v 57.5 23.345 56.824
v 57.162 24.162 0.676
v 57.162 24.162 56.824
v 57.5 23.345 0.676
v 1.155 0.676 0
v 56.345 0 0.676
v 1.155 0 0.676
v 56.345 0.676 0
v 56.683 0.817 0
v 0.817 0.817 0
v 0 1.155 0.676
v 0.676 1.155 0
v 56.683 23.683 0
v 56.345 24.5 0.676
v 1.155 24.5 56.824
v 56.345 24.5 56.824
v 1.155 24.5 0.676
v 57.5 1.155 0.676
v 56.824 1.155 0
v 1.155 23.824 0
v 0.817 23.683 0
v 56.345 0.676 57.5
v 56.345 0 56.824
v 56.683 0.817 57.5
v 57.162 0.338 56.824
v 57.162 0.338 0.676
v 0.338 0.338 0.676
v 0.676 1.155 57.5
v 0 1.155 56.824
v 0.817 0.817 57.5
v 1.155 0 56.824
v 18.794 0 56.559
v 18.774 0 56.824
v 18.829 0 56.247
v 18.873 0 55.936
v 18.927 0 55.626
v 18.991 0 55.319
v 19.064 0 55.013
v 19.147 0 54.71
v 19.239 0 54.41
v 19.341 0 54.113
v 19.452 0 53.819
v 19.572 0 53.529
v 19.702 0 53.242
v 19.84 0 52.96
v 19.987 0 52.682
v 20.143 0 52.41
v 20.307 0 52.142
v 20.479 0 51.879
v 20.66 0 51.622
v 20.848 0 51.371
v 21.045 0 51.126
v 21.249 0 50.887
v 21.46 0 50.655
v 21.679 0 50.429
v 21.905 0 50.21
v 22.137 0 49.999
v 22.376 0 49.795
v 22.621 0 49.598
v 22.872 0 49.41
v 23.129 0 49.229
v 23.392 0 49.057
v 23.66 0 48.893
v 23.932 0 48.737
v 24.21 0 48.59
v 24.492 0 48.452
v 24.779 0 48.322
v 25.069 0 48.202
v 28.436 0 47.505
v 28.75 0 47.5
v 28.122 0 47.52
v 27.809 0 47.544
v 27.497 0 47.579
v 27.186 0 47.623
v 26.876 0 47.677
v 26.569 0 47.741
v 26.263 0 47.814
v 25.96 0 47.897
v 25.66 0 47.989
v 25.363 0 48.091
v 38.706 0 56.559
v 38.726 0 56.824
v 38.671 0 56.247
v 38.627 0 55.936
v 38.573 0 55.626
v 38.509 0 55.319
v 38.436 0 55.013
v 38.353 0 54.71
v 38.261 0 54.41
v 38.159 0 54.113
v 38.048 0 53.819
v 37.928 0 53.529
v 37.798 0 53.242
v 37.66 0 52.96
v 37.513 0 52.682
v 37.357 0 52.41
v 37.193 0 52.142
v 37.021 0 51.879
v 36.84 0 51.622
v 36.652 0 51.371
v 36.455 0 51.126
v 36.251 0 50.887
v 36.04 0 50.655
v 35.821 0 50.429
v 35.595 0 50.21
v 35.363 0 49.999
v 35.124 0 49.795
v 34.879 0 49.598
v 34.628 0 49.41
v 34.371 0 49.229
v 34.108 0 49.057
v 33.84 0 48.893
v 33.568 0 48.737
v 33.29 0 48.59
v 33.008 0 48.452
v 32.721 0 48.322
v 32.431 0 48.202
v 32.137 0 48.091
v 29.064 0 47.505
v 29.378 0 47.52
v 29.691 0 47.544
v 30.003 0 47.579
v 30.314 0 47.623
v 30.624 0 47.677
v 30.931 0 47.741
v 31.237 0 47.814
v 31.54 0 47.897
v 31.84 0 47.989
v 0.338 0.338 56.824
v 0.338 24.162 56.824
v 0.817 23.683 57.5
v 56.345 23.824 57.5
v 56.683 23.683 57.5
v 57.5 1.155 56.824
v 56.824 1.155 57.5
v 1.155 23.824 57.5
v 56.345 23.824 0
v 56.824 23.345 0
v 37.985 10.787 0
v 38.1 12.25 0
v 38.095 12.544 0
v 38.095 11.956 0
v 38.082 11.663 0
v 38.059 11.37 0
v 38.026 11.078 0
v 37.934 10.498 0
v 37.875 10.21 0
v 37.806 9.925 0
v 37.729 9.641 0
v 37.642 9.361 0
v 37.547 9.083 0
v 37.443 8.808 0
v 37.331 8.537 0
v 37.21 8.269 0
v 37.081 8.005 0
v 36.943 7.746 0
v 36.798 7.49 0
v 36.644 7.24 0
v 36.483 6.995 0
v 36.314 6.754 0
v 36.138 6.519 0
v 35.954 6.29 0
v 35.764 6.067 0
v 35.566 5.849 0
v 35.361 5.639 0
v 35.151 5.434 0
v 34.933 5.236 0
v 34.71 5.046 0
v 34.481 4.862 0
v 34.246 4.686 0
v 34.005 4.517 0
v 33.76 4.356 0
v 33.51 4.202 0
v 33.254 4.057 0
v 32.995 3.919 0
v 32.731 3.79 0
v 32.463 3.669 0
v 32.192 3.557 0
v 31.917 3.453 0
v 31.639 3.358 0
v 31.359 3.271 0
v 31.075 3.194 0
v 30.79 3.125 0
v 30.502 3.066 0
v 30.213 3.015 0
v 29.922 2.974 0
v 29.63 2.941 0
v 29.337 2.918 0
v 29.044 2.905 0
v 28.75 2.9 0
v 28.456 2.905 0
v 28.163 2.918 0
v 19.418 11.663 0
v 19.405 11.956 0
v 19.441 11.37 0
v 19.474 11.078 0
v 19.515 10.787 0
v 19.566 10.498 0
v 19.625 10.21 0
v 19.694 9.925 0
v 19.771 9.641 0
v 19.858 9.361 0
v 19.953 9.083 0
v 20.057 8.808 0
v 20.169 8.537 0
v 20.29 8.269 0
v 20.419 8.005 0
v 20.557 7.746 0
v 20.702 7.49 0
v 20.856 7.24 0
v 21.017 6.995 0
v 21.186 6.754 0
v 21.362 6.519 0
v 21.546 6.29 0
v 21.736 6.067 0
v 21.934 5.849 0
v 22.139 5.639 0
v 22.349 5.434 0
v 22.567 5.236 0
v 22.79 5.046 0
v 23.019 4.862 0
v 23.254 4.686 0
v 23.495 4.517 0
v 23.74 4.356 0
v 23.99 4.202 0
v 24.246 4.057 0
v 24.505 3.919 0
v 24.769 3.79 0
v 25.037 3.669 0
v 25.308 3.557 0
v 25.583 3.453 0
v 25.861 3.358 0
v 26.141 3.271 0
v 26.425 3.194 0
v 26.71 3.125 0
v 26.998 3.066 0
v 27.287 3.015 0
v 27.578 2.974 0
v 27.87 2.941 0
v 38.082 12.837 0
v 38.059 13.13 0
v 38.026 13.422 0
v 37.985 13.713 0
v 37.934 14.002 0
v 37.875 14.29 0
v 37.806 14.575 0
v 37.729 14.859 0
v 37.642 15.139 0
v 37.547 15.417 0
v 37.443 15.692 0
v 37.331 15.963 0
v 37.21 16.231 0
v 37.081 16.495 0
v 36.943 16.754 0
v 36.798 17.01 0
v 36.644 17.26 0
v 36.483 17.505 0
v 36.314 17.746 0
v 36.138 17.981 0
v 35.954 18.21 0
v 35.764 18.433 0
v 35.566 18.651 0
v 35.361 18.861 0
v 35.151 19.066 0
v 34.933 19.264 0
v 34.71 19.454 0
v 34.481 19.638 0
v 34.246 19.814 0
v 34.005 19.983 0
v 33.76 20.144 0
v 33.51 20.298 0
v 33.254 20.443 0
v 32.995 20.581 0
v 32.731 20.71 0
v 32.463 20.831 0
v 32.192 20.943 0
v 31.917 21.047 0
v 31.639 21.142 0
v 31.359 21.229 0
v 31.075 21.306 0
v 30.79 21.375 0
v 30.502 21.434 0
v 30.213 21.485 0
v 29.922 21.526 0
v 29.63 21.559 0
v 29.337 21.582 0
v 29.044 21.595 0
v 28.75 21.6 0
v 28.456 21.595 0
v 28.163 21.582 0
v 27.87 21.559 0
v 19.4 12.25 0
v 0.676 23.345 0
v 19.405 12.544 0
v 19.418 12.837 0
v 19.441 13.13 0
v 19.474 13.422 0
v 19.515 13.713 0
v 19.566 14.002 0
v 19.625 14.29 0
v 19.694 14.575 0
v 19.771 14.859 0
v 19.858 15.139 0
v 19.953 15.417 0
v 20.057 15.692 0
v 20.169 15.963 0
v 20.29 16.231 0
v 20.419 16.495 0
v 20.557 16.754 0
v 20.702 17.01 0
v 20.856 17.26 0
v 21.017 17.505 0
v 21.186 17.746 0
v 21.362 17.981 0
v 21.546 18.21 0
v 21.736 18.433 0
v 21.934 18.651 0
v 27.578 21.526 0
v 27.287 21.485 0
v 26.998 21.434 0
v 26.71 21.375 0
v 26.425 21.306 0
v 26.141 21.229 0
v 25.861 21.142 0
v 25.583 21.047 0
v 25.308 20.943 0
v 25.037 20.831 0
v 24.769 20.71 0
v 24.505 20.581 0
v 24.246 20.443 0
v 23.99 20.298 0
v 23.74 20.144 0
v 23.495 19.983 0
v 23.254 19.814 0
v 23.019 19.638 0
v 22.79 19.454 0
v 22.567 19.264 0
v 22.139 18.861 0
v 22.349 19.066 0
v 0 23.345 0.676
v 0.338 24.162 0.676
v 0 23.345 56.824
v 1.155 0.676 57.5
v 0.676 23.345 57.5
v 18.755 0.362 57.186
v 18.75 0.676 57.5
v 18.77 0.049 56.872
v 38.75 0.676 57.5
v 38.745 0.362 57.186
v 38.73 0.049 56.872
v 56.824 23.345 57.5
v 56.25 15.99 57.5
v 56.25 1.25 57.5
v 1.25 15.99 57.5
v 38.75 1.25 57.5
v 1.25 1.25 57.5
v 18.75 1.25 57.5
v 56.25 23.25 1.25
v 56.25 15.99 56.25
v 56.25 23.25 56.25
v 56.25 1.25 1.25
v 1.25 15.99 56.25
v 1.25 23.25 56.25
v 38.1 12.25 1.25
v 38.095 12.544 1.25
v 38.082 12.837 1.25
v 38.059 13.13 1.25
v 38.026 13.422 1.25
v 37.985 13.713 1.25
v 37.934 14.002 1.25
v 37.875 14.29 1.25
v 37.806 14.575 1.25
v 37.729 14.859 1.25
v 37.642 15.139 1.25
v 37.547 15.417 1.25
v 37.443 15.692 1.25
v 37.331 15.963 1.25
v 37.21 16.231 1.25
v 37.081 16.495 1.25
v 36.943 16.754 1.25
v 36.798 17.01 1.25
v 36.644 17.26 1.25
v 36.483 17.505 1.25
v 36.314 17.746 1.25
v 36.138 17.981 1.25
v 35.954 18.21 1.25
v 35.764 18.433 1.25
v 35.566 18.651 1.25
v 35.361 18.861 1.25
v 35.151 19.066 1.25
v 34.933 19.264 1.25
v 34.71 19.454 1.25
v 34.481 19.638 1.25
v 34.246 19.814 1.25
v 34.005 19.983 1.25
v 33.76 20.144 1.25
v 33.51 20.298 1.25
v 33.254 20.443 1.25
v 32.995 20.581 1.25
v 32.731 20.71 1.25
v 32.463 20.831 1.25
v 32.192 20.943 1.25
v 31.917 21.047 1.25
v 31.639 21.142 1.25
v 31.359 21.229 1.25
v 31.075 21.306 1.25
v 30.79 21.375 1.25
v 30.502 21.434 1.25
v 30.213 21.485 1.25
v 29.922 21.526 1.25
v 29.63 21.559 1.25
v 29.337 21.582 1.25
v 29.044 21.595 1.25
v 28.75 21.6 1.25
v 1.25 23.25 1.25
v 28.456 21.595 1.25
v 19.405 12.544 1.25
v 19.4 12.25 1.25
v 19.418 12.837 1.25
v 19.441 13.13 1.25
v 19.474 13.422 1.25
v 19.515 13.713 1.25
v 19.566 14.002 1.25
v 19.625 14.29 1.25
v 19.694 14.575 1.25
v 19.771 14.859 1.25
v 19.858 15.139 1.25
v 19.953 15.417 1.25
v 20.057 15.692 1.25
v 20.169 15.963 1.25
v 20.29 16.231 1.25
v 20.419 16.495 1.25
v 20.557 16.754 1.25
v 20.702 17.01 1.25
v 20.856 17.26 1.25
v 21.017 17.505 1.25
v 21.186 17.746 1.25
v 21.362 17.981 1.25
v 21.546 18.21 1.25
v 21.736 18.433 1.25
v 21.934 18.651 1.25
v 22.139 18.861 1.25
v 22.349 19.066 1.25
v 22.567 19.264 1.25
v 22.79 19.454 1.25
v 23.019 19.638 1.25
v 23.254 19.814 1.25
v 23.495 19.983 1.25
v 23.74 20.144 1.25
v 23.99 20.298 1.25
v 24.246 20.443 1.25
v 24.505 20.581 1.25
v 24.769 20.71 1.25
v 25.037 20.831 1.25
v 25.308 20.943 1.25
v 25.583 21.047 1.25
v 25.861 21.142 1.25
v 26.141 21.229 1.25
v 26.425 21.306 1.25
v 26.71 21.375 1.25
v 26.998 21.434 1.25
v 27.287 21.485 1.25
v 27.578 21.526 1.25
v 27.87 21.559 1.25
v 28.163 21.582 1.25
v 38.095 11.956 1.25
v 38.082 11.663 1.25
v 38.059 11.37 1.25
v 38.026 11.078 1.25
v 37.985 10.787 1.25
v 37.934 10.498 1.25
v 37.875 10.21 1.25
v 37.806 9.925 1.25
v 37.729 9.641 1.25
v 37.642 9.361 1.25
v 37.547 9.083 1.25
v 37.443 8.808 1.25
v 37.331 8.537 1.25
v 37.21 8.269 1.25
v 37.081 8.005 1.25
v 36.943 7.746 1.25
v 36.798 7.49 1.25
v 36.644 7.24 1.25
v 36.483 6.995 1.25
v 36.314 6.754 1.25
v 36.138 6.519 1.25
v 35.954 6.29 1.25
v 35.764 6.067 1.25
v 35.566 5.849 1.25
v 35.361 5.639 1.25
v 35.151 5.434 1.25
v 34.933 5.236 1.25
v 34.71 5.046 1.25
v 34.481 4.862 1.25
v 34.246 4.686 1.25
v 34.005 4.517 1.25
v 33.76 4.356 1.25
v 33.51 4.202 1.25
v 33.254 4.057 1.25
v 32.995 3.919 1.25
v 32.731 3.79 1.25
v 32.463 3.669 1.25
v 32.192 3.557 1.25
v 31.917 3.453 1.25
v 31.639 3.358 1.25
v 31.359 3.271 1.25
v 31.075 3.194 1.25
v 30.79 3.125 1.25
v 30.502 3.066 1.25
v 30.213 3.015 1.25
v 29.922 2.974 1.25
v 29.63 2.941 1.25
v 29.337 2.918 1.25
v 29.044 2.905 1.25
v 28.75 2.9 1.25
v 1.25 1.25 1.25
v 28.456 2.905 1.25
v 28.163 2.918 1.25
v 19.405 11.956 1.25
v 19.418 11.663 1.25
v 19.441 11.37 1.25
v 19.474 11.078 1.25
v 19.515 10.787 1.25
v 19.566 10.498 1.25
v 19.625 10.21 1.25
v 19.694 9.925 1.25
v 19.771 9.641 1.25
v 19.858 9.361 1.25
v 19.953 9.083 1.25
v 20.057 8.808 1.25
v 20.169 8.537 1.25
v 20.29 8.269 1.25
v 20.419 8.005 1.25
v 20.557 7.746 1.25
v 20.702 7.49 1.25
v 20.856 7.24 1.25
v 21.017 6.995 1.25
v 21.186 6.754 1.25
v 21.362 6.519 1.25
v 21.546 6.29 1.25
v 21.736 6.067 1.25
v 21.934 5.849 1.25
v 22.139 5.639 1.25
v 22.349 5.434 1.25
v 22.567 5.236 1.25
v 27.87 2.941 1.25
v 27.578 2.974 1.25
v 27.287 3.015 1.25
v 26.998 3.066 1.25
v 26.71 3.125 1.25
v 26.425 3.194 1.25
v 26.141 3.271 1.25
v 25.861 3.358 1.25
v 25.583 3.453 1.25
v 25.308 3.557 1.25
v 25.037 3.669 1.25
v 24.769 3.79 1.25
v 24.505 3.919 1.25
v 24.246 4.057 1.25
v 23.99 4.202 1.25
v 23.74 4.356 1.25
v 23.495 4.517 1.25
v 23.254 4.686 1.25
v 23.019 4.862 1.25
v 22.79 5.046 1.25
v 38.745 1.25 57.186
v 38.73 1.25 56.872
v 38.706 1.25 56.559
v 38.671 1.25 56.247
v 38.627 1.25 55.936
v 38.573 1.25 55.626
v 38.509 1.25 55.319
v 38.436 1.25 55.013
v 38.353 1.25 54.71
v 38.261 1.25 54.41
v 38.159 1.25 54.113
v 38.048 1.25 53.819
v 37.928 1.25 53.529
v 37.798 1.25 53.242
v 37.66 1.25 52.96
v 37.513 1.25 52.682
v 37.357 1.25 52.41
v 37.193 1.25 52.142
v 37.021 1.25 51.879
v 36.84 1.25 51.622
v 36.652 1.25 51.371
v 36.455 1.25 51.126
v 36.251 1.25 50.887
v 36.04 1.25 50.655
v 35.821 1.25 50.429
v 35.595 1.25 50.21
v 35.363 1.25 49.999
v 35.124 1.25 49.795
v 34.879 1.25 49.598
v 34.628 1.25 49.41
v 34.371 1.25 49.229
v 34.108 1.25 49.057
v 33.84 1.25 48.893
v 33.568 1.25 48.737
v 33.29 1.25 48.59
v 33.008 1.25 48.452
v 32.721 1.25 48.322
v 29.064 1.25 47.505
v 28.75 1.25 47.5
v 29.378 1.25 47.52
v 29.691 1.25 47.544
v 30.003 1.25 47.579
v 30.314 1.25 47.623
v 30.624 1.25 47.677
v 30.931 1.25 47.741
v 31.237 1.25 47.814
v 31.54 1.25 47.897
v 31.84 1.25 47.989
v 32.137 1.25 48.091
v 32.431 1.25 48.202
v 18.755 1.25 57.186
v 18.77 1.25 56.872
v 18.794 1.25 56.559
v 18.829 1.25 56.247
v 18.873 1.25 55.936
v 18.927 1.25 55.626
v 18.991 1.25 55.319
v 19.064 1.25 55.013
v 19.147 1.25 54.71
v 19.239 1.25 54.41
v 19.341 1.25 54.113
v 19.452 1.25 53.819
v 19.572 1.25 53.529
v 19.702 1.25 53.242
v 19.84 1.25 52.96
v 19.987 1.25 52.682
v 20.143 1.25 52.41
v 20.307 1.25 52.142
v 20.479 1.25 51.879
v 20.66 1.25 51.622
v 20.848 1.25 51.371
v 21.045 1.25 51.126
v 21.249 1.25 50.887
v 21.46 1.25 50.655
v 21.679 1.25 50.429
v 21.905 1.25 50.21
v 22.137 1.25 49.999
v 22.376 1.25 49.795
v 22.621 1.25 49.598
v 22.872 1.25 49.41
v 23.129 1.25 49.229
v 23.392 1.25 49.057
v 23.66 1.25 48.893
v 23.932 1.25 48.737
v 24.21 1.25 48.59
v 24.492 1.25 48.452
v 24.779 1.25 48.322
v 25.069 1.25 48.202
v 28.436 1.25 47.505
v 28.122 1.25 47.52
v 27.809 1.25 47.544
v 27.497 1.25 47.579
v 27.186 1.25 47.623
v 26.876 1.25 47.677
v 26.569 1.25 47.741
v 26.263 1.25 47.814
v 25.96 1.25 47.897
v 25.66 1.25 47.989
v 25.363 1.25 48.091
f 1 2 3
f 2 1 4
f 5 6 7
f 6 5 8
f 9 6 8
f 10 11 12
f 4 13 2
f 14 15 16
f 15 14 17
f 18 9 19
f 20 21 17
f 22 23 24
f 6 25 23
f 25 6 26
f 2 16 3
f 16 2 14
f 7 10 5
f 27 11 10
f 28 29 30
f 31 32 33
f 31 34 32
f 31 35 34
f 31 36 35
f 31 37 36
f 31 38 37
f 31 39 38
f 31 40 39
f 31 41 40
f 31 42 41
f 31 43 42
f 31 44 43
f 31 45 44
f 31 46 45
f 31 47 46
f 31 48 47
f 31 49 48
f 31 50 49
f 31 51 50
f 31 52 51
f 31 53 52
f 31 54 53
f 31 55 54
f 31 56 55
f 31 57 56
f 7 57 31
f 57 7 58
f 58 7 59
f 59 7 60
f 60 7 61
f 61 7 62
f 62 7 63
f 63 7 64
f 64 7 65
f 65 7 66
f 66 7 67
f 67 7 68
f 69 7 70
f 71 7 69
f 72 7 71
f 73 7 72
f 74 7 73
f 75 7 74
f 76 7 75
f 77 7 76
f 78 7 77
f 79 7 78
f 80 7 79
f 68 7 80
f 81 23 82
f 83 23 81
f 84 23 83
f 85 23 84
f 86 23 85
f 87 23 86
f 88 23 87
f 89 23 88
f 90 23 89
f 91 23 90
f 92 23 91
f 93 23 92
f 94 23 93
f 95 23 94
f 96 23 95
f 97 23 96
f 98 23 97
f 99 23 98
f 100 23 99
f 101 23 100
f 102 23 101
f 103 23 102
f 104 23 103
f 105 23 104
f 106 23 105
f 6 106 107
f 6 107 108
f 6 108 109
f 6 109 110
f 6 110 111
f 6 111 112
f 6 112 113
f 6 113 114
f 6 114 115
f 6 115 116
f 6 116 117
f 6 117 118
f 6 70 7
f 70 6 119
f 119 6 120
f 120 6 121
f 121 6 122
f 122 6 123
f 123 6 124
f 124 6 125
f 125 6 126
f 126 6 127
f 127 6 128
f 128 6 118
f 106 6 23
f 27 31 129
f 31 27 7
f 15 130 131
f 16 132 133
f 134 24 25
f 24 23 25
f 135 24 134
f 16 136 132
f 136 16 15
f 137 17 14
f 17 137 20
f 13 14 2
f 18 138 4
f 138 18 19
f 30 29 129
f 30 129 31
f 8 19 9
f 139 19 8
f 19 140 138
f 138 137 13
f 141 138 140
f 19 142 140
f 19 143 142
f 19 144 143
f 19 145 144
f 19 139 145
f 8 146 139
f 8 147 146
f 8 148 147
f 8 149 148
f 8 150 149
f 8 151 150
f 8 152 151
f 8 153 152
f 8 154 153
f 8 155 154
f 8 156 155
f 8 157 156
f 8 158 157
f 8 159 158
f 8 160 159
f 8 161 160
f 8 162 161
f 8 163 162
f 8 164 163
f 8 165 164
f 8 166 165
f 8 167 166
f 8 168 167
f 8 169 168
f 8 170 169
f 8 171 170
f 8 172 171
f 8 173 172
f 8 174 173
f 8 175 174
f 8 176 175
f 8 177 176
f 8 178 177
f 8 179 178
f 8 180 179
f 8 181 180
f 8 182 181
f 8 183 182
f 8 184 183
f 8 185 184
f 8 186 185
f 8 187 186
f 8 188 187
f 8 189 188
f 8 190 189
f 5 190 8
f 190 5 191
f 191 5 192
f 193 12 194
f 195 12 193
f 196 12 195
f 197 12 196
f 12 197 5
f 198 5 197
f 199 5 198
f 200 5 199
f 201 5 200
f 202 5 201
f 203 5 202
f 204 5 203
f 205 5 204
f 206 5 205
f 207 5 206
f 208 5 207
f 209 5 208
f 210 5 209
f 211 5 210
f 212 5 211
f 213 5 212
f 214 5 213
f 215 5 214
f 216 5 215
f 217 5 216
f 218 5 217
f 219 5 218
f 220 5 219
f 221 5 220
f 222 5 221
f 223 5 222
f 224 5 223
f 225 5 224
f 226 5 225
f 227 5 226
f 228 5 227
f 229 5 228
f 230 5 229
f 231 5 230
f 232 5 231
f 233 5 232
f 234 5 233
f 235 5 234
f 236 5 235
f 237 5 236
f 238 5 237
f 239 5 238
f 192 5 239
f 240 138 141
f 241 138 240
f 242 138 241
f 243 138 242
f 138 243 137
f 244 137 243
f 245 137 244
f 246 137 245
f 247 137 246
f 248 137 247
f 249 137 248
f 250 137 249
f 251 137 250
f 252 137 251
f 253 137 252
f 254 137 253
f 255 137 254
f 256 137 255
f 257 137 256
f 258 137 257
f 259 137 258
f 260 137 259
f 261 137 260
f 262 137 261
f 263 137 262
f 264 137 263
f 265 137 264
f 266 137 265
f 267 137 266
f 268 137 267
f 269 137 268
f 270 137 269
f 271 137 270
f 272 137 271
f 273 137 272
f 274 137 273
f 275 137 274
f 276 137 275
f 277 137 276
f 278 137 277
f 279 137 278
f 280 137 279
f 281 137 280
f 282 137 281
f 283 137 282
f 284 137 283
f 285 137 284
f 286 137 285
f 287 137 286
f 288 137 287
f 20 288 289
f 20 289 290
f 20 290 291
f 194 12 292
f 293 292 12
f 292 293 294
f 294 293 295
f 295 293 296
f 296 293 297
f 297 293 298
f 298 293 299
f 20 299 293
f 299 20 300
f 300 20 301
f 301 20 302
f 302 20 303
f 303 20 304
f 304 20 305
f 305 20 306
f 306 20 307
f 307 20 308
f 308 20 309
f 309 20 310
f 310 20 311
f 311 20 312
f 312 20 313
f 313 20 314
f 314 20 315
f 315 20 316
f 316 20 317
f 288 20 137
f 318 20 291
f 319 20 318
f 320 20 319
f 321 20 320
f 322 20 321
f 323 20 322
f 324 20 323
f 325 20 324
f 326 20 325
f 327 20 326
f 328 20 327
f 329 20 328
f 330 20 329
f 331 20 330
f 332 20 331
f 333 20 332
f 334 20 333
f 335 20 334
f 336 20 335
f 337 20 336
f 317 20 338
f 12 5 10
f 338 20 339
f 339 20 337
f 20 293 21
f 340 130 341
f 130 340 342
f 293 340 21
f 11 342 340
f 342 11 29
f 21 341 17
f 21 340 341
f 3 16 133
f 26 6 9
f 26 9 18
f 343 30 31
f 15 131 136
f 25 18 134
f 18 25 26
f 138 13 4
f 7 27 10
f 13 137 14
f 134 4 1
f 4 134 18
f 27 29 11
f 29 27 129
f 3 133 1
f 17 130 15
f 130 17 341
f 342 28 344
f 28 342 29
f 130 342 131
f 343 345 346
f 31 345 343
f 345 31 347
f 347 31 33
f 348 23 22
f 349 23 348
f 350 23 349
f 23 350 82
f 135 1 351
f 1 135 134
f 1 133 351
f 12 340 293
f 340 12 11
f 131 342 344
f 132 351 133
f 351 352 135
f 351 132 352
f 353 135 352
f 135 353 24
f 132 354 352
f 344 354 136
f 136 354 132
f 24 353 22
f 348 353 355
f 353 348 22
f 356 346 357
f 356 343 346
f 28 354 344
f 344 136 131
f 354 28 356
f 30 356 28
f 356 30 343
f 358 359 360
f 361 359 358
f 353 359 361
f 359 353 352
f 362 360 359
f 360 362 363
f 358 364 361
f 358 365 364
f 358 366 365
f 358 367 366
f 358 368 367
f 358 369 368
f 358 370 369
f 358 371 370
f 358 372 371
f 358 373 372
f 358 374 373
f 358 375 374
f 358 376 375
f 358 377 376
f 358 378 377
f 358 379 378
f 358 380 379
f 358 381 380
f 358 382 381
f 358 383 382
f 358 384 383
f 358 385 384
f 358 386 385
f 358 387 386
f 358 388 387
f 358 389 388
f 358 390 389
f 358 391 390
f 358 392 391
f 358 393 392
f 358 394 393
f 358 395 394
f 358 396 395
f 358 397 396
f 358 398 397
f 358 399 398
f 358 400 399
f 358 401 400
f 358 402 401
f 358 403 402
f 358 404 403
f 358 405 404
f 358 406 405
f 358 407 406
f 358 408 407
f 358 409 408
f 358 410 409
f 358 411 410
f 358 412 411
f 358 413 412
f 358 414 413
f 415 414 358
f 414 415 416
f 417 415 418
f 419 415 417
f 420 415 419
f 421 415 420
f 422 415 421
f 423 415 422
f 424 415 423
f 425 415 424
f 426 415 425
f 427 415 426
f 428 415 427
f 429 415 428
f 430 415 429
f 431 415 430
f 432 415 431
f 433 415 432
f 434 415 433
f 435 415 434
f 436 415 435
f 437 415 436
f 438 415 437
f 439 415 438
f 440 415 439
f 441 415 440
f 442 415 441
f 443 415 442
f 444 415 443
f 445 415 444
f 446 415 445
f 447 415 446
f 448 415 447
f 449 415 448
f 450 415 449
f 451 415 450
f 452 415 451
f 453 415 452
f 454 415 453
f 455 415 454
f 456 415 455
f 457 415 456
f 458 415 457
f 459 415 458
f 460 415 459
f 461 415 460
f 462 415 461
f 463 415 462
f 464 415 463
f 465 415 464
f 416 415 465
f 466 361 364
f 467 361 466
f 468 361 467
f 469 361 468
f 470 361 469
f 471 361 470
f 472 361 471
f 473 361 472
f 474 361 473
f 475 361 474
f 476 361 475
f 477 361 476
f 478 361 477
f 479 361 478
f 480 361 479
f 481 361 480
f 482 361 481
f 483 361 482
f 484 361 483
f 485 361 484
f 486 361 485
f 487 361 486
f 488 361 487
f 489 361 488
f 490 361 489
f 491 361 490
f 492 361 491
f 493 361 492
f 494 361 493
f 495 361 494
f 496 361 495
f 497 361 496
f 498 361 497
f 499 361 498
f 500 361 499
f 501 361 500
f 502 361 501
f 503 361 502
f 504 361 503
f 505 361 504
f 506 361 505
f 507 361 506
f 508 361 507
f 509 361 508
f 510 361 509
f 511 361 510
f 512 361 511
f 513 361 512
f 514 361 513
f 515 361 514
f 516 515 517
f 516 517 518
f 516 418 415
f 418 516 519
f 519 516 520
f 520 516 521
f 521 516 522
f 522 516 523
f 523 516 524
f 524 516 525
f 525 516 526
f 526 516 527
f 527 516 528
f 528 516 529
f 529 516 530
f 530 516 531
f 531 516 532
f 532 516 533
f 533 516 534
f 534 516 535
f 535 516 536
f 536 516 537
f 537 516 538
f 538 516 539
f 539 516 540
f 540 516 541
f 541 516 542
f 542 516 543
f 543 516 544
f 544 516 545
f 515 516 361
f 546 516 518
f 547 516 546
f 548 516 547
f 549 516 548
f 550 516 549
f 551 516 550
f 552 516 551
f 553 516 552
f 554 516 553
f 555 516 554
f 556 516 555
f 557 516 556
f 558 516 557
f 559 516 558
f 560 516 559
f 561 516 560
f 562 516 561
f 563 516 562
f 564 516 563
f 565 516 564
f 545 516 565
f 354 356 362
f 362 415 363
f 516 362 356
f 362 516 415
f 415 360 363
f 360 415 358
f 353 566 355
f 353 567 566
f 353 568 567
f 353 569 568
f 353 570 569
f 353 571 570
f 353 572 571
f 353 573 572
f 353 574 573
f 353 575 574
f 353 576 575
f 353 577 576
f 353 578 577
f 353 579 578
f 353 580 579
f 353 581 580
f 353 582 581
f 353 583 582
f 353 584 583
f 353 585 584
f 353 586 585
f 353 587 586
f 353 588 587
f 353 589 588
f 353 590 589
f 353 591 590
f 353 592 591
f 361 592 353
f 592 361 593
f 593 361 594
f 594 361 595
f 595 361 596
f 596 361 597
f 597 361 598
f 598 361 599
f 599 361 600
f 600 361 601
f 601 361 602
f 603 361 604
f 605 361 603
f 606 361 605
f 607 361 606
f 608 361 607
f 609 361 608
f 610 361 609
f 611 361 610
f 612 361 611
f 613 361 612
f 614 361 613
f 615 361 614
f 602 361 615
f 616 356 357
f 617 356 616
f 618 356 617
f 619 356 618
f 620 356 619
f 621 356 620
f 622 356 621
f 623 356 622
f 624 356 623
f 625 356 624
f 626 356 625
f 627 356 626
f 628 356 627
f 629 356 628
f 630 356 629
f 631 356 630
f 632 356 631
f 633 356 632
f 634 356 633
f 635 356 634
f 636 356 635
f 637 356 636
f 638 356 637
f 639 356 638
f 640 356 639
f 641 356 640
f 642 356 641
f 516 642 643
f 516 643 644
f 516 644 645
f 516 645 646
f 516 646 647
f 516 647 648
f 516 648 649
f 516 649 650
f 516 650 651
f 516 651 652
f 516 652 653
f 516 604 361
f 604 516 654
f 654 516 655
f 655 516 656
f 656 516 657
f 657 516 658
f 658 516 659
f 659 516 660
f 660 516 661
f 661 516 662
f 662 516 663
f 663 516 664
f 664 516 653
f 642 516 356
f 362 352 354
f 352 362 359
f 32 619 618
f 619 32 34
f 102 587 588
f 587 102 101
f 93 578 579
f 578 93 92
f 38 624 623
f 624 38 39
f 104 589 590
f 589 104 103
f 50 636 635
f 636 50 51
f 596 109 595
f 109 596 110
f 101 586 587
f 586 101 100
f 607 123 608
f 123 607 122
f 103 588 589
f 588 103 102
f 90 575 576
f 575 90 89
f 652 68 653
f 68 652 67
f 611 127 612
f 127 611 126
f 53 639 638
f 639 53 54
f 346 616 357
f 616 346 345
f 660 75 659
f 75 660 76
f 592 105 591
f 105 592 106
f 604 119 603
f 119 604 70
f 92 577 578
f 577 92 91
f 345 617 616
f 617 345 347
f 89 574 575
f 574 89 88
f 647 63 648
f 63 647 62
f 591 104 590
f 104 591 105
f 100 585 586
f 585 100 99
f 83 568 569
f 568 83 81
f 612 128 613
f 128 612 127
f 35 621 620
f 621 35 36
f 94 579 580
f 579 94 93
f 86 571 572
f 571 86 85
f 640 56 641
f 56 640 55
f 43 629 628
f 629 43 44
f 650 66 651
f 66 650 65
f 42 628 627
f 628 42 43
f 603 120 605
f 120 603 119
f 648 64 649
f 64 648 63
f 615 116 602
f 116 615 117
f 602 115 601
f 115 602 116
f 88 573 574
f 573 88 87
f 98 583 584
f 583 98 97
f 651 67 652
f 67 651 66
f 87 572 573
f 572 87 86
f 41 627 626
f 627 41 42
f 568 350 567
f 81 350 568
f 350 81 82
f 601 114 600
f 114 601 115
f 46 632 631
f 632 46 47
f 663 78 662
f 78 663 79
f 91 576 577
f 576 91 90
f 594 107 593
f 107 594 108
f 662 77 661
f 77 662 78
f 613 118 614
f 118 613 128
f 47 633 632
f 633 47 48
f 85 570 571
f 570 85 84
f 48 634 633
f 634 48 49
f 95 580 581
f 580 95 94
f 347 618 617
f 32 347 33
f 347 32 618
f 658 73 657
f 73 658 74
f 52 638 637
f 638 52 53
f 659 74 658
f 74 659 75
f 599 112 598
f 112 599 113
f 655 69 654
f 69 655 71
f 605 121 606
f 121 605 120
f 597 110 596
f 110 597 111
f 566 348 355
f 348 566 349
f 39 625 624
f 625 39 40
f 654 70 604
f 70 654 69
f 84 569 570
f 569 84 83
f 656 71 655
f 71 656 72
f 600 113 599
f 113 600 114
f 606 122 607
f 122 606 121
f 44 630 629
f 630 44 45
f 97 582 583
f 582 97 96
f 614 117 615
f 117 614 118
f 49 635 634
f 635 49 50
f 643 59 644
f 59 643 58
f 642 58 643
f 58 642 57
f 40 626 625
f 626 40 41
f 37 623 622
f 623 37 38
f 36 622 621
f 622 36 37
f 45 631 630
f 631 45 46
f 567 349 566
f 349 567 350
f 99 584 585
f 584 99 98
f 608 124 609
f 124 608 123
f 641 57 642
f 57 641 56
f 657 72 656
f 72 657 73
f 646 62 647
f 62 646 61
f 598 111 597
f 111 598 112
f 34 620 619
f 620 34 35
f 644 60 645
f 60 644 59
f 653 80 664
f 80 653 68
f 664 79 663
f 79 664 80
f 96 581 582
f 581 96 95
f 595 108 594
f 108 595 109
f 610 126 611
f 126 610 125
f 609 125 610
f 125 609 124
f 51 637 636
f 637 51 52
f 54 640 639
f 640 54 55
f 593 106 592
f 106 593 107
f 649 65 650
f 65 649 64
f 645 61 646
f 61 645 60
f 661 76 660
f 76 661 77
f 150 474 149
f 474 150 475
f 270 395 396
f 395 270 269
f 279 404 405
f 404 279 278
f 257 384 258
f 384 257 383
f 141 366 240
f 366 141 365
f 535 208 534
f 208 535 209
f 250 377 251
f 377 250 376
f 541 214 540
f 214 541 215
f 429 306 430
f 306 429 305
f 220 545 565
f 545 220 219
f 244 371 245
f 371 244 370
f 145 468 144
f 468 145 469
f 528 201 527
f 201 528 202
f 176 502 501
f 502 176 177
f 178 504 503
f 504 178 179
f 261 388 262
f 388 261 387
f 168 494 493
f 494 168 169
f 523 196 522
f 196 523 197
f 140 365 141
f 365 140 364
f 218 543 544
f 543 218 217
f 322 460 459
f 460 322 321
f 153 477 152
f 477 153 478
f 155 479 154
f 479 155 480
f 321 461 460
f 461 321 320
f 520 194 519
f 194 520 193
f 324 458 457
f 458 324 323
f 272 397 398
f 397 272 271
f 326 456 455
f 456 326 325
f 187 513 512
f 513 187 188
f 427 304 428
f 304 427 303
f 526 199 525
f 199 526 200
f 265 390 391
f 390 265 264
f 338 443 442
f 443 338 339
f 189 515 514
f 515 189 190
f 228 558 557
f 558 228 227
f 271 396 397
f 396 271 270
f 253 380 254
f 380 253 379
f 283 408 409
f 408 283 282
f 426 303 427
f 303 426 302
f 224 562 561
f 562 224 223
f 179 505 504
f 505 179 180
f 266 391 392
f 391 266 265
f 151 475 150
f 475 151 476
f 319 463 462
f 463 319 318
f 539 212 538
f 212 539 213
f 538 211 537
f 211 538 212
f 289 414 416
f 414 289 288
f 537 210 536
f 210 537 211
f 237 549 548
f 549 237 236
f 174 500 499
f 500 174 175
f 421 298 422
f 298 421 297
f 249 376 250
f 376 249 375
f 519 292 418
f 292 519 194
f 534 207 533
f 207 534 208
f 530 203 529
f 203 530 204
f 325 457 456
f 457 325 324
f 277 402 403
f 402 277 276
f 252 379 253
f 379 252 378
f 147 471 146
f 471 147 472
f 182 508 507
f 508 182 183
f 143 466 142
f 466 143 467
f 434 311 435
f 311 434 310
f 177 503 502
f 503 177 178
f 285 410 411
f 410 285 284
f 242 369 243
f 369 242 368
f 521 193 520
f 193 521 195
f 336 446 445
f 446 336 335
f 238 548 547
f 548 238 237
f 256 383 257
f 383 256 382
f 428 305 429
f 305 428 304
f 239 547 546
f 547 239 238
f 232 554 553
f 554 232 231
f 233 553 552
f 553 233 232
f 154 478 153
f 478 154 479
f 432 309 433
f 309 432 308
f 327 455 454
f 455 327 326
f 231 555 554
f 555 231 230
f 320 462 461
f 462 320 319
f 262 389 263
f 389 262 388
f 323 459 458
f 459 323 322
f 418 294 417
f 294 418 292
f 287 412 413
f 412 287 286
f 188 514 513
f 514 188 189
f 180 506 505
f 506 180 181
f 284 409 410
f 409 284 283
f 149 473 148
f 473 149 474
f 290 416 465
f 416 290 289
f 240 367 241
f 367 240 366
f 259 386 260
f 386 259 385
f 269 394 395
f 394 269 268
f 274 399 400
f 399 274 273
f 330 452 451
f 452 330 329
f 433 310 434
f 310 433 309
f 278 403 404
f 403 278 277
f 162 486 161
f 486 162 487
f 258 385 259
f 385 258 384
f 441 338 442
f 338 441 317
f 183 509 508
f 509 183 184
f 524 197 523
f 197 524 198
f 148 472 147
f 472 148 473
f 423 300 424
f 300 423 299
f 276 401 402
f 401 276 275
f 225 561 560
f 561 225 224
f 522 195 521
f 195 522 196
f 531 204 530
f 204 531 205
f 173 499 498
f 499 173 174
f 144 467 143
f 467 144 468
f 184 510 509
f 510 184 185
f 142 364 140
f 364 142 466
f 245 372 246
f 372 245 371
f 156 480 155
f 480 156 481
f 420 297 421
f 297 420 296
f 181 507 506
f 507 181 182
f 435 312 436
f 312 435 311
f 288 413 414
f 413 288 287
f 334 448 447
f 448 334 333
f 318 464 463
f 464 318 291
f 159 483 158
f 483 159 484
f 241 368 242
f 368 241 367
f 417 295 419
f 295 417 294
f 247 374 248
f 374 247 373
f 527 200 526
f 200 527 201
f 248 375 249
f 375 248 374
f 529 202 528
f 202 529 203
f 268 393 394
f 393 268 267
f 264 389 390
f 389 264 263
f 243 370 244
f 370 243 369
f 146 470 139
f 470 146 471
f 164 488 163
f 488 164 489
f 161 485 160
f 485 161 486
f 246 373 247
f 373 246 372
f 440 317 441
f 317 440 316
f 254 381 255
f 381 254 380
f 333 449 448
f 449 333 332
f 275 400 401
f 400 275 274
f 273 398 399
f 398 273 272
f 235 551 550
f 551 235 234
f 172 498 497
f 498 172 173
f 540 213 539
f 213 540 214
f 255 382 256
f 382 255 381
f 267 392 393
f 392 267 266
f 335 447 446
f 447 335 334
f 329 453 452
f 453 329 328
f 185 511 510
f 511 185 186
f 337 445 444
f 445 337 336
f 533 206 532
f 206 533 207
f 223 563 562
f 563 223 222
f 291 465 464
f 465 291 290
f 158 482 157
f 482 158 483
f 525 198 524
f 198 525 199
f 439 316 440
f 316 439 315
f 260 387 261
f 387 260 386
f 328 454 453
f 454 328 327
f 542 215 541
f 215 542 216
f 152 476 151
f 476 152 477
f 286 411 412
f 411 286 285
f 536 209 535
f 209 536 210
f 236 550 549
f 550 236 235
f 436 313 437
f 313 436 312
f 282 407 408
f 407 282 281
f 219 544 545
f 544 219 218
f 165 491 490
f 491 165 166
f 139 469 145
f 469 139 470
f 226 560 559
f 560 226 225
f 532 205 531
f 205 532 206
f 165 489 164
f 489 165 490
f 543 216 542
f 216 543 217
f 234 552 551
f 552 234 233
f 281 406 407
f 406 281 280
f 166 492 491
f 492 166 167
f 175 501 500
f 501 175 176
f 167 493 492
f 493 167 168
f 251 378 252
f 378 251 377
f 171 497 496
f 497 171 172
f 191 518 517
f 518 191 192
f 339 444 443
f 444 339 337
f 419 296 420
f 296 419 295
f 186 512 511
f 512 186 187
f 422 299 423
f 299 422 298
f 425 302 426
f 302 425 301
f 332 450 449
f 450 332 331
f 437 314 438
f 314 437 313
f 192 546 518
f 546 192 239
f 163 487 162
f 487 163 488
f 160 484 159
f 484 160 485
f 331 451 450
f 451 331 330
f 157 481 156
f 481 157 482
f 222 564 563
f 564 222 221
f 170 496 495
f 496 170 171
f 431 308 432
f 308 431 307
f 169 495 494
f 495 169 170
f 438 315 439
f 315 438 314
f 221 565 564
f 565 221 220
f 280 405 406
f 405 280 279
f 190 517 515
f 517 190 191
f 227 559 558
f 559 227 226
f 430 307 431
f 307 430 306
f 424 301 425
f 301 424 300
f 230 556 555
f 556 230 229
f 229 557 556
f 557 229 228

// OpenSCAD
// file: ../chamferer.scad
INFINITY = 10000;
ATOM = .01;

module chamfer_tool(r, fn, tool,
                    ax, ay, az,
                    ax2, ay2, az2,
                    ax3, ay3, az3) {
    rotate([ax3, ay3, az3])
    rotate([ax2, ay2, az2])
    rotate([ax, ay, az]) {
        if (tool=="sphere") {
            sphere(r, $fn=fn);
        }
        else if (tool=="hemisphere-up") {
            intersection() {
                sphere(r, $fn=fn);
                cylinder(r=r*2, h=r*2);
            }
        }
        else if (tool=="hemisphere-down") {
            difference() {
                sphere(r, $fn=fn);
                cylinder(r=r*2, h=r*2);
            }
        }
        else if (tool=="cone") {
            cylinder(r, r, 0, $fn=fn);
            scale([1, 1, -1])
            cylinder(r, r, 0, $fn=fn);
        }
        else if (tool=="cone-up") {
            cylinder(r, r, 0, $fn=fn, center=true);
        }
        else if (tool=="cone-down") {
            scale([1, 1, -1])
            cylinder(r, r, 0, $fn=fn, center=true);
        }
        else if (tool=="octahedron") {
            resize([r*2, r*2, r*2]) {
                cylinder(r, r, 0, $fn=4);
                scale([1, 1, -1])
                cylinder(r, r, 0, $fn=4);
            }
        }
        else if (tool=="pyramid") {
            resize([r*2, r*2, r*2]) {
                cylinder(r, r, 0, center=true, $fn=4);
            }
        }
        else if (tool=="rpyramid") {
            resize([r*2, r*2, r*2]) {
                cylinder(r, 0, r, center=true, $fn=4);
            }
        }
        else if (tool=="cylinder-z" || tool=="cylinder") {
            cylinder(r=r, h=ATOM, $fn=fn, center=true);
        }
        else if (tool=="cylinder-x") {
            rotate([0, 90, 0])
            cylinder(r=r, h=ATOM, $fn=fn, center=true);
        }
        else if (tool=="cylinder-y") {
            rotate([90, 0, 0])
            cylinder(r=r, h=ATOM, $fn=fn, center=true);
        }
        else if (tool=="cube") {
            cube(r*2, center=true);
        }
        else if (tool=="plate-y") {
            cube([r*2, ATOM, r*2], center=true);
        }
        else if (tool=="plate-z") {
            cube([r*2, r*2, ATOM], center=true);
        }
        else {
            assert(false, str("Unknown tool: ", tool));
        }
    }
}

module shrinker(r, tool, fn,
                ax, ay, az,
                ax2, ay2, az2,
                ax3, ay3, az3) {
    if (!r) {
        children();
    }
    else {
        // re-invert+grow = fillet
        difference() {
            cube(INFINITY/2, center=true);

            // invert+grow = carve
            minkowski() {
                difference() {
                    cube(INFINITY, center=true);
                    children();
                }
                //cube(r, center=true);
                chamfer_tool(r, fn, tool,
                             ax, ay, az,
                             ax2, ay2, az2,
                             ax3, ay3, az3);
            }
        }
    }
}

module chamferer(r, tool="sphere", fn=8, shrink=true, grow=true,
                 ax=0, ay=0, az=0,
                 ax2=0, ay2=0, az2=0,
                 ax3=0, ay3=0, az3=0,
) {
    if (!r) {
        children();
    }
    else {
        minkowski() {
            if (shrink)
                shrinker(r, tool, fn,
                         ax, ay, az,
                         ax2, ay2, az2,
                         ax3, ay3, az3) children();
            else
                children();
            
            if (grow)
                chamfer_tool(r, fn, tool,
                             ax, ay, az,
                             ax2, ay2, az2,
                             ax3, ay3, az3);
        }
    }
}



cube(50);

translate([70, 0, 0])
chamferer(5, "hemisphere-up", $preview? 6*4 : 30)
//shrinker(5, "sphere", $preview? 6*4 : 30)
cube(50);

translate([70*2, 0, 0])
chamferer(5, "octahedron", grow=false)
cube(50);
// main file
use <../chamferer.scad>

INNER_H    = 22;
INNER_SIDE = 55;
WALL       =  1.25;
CH         =  1.25;

H = INNER_H    + WALL*2;
S = INNER_SIDE + WALL*2;

$fn = 200;

difference() {
    chamferer($preview?0:CH, fn=8)
    cube([S, H, S]);
    
    // cavity
    translate([WALL, WALL, WALL])
    cube([INNER_SIDE, INNER_H, INNER_SIDE]);

    // opening
    translate([WALL, WALL, WALL])
    cube([INNER_SIDE, INNER_H*.67, INNER_SIDE*2]);

    // finger notch
    translate([S/2, -S/2, S])
    rotate([90, 0, 0])
    cylinder(r=10, h= H*3, center=true);

    // bottom hole
    translate([S/2, H/2, -1])
    cylinder(d=INNER_H*.85, h=S/2);
    
    
    // cross-cut
    if ($preview) translate([10, 20, -10]) cube(1000);
}
